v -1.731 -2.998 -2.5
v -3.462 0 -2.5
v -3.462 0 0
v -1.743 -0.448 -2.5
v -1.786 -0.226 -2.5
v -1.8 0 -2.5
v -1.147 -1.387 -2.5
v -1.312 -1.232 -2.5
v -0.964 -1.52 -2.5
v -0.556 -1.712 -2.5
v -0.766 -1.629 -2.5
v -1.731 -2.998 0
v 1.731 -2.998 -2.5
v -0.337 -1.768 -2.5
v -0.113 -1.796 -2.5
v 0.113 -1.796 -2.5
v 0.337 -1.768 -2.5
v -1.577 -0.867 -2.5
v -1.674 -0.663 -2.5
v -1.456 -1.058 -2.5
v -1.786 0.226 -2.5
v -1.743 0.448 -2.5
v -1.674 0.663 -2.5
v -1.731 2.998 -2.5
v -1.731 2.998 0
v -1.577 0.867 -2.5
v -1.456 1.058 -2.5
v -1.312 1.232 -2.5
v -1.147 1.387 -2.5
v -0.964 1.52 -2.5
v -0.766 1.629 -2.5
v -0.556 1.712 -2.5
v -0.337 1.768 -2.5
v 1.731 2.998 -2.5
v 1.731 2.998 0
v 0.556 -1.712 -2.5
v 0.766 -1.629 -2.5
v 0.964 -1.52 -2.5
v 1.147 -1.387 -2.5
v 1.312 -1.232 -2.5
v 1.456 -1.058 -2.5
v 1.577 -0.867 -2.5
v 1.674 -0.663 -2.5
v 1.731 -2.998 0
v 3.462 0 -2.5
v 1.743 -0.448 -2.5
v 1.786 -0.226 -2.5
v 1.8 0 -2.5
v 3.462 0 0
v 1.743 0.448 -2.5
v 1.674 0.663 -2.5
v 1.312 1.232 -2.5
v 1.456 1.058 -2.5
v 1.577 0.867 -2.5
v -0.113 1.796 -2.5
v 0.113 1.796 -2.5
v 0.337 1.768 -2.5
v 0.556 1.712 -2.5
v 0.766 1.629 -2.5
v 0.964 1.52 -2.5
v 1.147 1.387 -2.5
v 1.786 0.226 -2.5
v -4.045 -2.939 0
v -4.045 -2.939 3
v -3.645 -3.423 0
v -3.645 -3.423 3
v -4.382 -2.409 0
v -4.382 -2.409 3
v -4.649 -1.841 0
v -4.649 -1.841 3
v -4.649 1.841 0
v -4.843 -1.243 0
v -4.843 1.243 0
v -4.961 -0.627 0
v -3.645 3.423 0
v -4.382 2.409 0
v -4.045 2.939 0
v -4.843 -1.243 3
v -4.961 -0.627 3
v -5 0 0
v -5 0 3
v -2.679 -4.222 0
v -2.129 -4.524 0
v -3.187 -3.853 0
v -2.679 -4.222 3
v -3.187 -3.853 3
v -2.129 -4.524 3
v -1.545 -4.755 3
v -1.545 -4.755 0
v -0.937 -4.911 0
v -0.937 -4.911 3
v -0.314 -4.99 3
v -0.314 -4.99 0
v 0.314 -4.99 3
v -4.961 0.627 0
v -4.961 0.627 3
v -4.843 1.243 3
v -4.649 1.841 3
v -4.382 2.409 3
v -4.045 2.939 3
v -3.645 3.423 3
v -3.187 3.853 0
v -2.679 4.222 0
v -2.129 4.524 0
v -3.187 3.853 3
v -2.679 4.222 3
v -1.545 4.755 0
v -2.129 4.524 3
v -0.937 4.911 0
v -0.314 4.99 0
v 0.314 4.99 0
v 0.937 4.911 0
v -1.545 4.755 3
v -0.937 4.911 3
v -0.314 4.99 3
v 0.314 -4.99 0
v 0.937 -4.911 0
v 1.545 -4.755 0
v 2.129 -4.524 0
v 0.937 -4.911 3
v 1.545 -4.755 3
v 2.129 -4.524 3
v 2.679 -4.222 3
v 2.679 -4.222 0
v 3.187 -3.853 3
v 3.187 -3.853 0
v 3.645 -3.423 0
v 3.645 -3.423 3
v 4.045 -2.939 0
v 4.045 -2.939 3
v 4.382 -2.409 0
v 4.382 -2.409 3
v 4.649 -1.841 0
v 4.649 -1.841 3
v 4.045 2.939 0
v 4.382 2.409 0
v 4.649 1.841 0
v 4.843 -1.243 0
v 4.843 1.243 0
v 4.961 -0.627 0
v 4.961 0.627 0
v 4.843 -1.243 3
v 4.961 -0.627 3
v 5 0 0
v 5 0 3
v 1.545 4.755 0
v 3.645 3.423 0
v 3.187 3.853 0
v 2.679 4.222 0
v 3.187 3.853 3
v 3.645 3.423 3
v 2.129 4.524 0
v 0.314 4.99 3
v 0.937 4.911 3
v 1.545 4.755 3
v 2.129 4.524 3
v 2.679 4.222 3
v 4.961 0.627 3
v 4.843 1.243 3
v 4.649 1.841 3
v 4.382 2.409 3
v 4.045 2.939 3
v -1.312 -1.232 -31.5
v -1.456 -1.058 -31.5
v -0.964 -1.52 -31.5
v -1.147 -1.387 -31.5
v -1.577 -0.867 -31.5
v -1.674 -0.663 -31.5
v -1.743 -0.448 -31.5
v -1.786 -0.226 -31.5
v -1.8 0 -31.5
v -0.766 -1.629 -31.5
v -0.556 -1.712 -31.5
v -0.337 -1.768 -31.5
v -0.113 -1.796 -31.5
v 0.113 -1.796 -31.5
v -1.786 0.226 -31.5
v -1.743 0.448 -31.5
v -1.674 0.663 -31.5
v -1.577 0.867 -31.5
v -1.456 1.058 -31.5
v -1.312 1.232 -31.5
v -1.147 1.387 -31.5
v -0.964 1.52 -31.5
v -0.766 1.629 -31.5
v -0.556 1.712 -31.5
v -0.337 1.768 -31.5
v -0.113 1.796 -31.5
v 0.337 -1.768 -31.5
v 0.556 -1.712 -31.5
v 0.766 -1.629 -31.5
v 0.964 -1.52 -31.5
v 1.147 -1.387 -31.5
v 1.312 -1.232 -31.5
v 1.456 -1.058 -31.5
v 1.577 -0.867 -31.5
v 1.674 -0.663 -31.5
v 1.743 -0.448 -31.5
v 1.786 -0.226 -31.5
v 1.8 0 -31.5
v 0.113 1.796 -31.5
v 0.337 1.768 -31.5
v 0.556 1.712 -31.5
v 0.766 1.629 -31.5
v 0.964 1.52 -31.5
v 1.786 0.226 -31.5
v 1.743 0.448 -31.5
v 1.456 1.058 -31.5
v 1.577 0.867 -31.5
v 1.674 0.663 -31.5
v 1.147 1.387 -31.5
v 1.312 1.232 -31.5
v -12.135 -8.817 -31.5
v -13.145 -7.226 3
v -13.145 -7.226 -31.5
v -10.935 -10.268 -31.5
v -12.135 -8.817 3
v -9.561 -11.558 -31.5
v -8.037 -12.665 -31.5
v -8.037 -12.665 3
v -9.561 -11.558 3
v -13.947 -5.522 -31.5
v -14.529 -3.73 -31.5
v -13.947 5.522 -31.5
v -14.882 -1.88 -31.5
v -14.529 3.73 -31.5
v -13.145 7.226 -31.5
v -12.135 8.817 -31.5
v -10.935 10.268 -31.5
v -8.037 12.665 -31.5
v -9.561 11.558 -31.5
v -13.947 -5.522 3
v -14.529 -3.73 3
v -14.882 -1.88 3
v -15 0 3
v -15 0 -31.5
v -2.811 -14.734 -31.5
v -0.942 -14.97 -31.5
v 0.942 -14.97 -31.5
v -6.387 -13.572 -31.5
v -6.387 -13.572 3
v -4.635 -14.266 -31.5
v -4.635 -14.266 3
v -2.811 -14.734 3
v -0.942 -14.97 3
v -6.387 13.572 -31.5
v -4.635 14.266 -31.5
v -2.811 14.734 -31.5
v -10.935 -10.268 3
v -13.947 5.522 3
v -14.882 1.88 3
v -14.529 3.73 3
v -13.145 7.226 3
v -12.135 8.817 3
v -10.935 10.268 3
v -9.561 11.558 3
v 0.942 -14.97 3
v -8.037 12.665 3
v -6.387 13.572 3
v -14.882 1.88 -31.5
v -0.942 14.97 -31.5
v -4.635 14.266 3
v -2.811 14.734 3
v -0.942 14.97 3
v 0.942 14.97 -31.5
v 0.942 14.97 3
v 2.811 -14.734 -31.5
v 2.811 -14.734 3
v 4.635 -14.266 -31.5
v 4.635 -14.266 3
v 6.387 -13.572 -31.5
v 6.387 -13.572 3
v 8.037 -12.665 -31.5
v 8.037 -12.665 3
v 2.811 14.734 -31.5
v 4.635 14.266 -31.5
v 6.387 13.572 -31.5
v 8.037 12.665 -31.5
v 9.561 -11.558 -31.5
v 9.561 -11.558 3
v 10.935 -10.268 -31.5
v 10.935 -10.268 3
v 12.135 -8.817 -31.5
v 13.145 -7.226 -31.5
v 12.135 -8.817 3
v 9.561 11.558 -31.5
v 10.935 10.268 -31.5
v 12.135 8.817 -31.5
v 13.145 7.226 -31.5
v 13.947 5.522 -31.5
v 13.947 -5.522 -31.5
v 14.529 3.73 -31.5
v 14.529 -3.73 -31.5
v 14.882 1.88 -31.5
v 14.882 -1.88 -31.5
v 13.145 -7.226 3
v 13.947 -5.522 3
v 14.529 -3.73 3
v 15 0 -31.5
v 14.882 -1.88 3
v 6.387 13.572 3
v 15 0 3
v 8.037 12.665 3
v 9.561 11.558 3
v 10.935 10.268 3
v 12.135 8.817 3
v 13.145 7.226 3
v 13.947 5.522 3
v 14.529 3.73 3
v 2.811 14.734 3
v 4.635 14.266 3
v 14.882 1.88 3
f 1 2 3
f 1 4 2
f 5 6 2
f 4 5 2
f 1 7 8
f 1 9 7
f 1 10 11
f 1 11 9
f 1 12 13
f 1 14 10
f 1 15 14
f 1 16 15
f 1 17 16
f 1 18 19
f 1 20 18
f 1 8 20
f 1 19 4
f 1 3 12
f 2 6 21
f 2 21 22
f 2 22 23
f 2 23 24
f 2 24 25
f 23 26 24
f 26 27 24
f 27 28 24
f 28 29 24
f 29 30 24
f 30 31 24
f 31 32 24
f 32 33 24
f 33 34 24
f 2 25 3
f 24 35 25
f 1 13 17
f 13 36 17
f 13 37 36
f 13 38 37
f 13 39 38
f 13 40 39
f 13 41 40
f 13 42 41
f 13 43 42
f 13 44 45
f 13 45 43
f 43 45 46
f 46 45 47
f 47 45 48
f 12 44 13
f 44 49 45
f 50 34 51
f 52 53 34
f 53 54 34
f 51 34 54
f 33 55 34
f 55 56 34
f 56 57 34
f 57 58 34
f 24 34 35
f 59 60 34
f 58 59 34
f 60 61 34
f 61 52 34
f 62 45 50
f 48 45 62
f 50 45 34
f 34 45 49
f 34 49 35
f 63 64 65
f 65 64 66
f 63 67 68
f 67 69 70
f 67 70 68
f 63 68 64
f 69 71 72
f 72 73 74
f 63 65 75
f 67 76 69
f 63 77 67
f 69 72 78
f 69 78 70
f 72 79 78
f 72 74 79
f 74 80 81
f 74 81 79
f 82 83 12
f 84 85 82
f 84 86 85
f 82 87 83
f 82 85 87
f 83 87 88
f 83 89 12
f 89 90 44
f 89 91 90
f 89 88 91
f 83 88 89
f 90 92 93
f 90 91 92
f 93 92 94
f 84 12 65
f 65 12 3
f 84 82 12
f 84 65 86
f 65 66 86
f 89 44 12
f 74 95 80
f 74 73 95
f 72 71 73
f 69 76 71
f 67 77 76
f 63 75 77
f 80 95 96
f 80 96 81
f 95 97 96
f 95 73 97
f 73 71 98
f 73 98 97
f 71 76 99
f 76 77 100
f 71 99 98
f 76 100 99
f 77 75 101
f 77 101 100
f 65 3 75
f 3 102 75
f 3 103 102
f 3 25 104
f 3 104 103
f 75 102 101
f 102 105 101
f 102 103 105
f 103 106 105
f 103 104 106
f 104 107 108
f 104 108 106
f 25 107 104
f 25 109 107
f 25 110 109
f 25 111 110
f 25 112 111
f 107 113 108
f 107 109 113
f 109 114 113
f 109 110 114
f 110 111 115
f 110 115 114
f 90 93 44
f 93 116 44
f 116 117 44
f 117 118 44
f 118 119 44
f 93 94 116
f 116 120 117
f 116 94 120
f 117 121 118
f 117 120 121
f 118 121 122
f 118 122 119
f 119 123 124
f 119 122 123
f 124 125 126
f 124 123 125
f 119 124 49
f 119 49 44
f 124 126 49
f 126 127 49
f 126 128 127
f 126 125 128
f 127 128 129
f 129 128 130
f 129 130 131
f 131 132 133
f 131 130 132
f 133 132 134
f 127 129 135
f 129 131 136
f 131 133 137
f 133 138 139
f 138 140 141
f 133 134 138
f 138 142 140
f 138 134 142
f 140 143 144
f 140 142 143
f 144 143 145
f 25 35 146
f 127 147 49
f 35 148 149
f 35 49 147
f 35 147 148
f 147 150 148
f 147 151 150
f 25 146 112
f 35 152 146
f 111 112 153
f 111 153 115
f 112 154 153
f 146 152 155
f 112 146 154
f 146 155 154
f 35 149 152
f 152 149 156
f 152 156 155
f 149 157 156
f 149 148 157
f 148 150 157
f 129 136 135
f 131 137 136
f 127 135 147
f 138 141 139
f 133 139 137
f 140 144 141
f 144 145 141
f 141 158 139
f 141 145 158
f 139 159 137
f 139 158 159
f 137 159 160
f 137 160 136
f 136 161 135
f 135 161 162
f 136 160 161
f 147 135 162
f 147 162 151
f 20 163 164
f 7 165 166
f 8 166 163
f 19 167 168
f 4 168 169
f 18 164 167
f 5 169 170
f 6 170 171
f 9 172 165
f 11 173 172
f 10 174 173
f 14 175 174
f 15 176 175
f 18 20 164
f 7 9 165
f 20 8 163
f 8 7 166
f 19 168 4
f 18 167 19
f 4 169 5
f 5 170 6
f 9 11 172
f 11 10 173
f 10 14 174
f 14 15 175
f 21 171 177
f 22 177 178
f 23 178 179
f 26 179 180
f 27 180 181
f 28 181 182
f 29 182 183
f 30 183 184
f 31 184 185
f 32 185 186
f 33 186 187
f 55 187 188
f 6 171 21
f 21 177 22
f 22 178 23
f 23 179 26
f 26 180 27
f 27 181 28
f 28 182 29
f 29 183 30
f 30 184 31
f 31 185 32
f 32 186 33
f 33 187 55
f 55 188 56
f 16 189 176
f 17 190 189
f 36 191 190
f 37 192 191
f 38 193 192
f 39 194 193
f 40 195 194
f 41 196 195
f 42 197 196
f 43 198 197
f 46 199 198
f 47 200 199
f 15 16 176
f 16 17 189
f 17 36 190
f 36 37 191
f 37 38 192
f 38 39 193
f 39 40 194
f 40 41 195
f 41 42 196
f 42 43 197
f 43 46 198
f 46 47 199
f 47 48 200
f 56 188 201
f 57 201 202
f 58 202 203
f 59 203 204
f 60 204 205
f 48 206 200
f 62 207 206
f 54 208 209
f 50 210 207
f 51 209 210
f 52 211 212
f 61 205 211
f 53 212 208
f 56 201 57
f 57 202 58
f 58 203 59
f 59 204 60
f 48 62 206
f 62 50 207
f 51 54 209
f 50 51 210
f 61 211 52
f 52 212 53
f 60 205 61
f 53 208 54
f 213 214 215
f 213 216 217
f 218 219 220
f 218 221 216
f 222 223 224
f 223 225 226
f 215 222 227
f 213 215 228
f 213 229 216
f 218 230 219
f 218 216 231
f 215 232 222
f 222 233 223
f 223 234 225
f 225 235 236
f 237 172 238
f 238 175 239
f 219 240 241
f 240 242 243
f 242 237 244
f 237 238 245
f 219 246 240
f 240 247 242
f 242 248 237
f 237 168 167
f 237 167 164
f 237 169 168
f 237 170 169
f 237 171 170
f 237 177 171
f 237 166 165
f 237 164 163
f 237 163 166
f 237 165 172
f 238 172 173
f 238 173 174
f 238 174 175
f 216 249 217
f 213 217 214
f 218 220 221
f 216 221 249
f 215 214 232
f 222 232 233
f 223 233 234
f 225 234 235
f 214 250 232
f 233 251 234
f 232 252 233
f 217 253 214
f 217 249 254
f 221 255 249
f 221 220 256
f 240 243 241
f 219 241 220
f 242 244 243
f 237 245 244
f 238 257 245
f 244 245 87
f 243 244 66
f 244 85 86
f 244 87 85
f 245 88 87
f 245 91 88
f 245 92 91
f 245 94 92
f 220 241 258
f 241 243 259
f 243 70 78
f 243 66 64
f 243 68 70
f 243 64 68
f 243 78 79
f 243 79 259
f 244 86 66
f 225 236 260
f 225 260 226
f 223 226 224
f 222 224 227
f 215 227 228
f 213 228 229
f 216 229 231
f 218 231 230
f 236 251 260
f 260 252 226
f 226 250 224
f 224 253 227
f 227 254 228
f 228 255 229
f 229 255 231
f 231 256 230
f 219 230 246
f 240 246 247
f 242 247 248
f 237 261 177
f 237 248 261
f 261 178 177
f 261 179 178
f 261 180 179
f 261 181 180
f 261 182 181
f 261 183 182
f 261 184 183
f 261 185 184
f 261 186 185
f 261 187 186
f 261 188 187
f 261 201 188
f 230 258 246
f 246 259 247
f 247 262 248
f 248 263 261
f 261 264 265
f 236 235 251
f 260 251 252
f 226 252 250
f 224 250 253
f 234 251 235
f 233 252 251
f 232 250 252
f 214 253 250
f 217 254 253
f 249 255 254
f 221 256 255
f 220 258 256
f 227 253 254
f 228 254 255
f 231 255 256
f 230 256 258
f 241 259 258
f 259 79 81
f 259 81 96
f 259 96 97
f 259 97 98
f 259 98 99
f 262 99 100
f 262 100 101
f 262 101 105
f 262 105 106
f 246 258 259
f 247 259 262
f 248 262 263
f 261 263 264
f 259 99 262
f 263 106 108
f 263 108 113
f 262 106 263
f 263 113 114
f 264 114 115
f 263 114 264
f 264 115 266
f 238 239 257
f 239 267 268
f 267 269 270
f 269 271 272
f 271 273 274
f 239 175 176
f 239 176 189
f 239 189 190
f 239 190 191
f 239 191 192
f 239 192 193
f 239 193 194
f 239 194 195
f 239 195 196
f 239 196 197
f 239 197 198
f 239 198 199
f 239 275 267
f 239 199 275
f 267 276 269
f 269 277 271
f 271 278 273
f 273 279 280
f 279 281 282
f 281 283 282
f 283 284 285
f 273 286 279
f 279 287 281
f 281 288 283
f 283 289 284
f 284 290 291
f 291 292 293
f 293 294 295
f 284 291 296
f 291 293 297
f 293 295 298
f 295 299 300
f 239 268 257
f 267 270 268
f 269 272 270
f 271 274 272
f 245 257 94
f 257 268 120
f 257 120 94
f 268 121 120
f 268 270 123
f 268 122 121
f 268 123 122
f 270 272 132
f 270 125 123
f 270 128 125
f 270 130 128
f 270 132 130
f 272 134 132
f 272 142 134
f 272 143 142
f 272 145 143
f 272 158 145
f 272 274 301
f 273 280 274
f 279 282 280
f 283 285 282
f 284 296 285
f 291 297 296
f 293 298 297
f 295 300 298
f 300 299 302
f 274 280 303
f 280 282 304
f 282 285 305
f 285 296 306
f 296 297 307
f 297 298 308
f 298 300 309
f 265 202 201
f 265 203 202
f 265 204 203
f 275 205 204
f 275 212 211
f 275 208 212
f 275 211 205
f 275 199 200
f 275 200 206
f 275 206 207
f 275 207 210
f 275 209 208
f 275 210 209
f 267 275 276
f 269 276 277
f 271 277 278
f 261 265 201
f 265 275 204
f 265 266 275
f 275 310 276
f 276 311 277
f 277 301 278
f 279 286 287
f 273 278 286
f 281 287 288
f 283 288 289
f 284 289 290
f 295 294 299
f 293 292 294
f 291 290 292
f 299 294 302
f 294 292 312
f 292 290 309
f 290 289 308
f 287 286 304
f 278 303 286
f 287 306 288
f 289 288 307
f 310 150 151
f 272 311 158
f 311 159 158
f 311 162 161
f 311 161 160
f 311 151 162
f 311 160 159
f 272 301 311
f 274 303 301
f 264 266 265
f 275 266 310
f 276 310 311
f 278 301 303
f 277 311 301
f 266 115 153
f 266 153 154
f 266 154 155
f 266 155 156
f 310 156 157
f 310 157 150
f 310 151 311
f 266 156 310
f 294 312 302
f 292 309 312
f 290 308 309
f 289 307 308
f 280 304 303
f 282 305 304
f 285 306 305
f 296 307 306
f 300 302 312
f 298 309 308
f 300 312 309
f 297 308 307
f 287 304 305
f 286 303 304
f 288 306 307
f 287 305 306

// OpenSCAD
$fn = 50;

difference() {
	union() {
		translate(v = [0, 0, -31.5]) {
			cylinder(h = 34.5, r = 15.0);
		}
	}
	union() {
		translate(v = [0, 0, 0]) {
			rotate(a = [0, 0, 0]) {
				difference() {
					union() {
						translate(v = [0, 0, -2.5]) {
							linear_extrude(height = 2.5) {
								polygon(points = [[3.4619999999999997, 0.0], [1.7310000000000003, 2.9981799479017264], [-1.7309999999999992, 2.9981799479017264], [-3.4619999999999997, 4.2397272186481365e-16], [-1.7310000000000014, -2.998179947901726], [1.7309999999999977, -2.9981799479017277]]);
							}
						}
					}
					union();
				}
			}
		}
		#cylinder(h = 3, r = 5.0);
		#translate(v = [0, 0, -100.0]) {
			cylinder(h = 200, r = 1.8);
		}
	}
}
